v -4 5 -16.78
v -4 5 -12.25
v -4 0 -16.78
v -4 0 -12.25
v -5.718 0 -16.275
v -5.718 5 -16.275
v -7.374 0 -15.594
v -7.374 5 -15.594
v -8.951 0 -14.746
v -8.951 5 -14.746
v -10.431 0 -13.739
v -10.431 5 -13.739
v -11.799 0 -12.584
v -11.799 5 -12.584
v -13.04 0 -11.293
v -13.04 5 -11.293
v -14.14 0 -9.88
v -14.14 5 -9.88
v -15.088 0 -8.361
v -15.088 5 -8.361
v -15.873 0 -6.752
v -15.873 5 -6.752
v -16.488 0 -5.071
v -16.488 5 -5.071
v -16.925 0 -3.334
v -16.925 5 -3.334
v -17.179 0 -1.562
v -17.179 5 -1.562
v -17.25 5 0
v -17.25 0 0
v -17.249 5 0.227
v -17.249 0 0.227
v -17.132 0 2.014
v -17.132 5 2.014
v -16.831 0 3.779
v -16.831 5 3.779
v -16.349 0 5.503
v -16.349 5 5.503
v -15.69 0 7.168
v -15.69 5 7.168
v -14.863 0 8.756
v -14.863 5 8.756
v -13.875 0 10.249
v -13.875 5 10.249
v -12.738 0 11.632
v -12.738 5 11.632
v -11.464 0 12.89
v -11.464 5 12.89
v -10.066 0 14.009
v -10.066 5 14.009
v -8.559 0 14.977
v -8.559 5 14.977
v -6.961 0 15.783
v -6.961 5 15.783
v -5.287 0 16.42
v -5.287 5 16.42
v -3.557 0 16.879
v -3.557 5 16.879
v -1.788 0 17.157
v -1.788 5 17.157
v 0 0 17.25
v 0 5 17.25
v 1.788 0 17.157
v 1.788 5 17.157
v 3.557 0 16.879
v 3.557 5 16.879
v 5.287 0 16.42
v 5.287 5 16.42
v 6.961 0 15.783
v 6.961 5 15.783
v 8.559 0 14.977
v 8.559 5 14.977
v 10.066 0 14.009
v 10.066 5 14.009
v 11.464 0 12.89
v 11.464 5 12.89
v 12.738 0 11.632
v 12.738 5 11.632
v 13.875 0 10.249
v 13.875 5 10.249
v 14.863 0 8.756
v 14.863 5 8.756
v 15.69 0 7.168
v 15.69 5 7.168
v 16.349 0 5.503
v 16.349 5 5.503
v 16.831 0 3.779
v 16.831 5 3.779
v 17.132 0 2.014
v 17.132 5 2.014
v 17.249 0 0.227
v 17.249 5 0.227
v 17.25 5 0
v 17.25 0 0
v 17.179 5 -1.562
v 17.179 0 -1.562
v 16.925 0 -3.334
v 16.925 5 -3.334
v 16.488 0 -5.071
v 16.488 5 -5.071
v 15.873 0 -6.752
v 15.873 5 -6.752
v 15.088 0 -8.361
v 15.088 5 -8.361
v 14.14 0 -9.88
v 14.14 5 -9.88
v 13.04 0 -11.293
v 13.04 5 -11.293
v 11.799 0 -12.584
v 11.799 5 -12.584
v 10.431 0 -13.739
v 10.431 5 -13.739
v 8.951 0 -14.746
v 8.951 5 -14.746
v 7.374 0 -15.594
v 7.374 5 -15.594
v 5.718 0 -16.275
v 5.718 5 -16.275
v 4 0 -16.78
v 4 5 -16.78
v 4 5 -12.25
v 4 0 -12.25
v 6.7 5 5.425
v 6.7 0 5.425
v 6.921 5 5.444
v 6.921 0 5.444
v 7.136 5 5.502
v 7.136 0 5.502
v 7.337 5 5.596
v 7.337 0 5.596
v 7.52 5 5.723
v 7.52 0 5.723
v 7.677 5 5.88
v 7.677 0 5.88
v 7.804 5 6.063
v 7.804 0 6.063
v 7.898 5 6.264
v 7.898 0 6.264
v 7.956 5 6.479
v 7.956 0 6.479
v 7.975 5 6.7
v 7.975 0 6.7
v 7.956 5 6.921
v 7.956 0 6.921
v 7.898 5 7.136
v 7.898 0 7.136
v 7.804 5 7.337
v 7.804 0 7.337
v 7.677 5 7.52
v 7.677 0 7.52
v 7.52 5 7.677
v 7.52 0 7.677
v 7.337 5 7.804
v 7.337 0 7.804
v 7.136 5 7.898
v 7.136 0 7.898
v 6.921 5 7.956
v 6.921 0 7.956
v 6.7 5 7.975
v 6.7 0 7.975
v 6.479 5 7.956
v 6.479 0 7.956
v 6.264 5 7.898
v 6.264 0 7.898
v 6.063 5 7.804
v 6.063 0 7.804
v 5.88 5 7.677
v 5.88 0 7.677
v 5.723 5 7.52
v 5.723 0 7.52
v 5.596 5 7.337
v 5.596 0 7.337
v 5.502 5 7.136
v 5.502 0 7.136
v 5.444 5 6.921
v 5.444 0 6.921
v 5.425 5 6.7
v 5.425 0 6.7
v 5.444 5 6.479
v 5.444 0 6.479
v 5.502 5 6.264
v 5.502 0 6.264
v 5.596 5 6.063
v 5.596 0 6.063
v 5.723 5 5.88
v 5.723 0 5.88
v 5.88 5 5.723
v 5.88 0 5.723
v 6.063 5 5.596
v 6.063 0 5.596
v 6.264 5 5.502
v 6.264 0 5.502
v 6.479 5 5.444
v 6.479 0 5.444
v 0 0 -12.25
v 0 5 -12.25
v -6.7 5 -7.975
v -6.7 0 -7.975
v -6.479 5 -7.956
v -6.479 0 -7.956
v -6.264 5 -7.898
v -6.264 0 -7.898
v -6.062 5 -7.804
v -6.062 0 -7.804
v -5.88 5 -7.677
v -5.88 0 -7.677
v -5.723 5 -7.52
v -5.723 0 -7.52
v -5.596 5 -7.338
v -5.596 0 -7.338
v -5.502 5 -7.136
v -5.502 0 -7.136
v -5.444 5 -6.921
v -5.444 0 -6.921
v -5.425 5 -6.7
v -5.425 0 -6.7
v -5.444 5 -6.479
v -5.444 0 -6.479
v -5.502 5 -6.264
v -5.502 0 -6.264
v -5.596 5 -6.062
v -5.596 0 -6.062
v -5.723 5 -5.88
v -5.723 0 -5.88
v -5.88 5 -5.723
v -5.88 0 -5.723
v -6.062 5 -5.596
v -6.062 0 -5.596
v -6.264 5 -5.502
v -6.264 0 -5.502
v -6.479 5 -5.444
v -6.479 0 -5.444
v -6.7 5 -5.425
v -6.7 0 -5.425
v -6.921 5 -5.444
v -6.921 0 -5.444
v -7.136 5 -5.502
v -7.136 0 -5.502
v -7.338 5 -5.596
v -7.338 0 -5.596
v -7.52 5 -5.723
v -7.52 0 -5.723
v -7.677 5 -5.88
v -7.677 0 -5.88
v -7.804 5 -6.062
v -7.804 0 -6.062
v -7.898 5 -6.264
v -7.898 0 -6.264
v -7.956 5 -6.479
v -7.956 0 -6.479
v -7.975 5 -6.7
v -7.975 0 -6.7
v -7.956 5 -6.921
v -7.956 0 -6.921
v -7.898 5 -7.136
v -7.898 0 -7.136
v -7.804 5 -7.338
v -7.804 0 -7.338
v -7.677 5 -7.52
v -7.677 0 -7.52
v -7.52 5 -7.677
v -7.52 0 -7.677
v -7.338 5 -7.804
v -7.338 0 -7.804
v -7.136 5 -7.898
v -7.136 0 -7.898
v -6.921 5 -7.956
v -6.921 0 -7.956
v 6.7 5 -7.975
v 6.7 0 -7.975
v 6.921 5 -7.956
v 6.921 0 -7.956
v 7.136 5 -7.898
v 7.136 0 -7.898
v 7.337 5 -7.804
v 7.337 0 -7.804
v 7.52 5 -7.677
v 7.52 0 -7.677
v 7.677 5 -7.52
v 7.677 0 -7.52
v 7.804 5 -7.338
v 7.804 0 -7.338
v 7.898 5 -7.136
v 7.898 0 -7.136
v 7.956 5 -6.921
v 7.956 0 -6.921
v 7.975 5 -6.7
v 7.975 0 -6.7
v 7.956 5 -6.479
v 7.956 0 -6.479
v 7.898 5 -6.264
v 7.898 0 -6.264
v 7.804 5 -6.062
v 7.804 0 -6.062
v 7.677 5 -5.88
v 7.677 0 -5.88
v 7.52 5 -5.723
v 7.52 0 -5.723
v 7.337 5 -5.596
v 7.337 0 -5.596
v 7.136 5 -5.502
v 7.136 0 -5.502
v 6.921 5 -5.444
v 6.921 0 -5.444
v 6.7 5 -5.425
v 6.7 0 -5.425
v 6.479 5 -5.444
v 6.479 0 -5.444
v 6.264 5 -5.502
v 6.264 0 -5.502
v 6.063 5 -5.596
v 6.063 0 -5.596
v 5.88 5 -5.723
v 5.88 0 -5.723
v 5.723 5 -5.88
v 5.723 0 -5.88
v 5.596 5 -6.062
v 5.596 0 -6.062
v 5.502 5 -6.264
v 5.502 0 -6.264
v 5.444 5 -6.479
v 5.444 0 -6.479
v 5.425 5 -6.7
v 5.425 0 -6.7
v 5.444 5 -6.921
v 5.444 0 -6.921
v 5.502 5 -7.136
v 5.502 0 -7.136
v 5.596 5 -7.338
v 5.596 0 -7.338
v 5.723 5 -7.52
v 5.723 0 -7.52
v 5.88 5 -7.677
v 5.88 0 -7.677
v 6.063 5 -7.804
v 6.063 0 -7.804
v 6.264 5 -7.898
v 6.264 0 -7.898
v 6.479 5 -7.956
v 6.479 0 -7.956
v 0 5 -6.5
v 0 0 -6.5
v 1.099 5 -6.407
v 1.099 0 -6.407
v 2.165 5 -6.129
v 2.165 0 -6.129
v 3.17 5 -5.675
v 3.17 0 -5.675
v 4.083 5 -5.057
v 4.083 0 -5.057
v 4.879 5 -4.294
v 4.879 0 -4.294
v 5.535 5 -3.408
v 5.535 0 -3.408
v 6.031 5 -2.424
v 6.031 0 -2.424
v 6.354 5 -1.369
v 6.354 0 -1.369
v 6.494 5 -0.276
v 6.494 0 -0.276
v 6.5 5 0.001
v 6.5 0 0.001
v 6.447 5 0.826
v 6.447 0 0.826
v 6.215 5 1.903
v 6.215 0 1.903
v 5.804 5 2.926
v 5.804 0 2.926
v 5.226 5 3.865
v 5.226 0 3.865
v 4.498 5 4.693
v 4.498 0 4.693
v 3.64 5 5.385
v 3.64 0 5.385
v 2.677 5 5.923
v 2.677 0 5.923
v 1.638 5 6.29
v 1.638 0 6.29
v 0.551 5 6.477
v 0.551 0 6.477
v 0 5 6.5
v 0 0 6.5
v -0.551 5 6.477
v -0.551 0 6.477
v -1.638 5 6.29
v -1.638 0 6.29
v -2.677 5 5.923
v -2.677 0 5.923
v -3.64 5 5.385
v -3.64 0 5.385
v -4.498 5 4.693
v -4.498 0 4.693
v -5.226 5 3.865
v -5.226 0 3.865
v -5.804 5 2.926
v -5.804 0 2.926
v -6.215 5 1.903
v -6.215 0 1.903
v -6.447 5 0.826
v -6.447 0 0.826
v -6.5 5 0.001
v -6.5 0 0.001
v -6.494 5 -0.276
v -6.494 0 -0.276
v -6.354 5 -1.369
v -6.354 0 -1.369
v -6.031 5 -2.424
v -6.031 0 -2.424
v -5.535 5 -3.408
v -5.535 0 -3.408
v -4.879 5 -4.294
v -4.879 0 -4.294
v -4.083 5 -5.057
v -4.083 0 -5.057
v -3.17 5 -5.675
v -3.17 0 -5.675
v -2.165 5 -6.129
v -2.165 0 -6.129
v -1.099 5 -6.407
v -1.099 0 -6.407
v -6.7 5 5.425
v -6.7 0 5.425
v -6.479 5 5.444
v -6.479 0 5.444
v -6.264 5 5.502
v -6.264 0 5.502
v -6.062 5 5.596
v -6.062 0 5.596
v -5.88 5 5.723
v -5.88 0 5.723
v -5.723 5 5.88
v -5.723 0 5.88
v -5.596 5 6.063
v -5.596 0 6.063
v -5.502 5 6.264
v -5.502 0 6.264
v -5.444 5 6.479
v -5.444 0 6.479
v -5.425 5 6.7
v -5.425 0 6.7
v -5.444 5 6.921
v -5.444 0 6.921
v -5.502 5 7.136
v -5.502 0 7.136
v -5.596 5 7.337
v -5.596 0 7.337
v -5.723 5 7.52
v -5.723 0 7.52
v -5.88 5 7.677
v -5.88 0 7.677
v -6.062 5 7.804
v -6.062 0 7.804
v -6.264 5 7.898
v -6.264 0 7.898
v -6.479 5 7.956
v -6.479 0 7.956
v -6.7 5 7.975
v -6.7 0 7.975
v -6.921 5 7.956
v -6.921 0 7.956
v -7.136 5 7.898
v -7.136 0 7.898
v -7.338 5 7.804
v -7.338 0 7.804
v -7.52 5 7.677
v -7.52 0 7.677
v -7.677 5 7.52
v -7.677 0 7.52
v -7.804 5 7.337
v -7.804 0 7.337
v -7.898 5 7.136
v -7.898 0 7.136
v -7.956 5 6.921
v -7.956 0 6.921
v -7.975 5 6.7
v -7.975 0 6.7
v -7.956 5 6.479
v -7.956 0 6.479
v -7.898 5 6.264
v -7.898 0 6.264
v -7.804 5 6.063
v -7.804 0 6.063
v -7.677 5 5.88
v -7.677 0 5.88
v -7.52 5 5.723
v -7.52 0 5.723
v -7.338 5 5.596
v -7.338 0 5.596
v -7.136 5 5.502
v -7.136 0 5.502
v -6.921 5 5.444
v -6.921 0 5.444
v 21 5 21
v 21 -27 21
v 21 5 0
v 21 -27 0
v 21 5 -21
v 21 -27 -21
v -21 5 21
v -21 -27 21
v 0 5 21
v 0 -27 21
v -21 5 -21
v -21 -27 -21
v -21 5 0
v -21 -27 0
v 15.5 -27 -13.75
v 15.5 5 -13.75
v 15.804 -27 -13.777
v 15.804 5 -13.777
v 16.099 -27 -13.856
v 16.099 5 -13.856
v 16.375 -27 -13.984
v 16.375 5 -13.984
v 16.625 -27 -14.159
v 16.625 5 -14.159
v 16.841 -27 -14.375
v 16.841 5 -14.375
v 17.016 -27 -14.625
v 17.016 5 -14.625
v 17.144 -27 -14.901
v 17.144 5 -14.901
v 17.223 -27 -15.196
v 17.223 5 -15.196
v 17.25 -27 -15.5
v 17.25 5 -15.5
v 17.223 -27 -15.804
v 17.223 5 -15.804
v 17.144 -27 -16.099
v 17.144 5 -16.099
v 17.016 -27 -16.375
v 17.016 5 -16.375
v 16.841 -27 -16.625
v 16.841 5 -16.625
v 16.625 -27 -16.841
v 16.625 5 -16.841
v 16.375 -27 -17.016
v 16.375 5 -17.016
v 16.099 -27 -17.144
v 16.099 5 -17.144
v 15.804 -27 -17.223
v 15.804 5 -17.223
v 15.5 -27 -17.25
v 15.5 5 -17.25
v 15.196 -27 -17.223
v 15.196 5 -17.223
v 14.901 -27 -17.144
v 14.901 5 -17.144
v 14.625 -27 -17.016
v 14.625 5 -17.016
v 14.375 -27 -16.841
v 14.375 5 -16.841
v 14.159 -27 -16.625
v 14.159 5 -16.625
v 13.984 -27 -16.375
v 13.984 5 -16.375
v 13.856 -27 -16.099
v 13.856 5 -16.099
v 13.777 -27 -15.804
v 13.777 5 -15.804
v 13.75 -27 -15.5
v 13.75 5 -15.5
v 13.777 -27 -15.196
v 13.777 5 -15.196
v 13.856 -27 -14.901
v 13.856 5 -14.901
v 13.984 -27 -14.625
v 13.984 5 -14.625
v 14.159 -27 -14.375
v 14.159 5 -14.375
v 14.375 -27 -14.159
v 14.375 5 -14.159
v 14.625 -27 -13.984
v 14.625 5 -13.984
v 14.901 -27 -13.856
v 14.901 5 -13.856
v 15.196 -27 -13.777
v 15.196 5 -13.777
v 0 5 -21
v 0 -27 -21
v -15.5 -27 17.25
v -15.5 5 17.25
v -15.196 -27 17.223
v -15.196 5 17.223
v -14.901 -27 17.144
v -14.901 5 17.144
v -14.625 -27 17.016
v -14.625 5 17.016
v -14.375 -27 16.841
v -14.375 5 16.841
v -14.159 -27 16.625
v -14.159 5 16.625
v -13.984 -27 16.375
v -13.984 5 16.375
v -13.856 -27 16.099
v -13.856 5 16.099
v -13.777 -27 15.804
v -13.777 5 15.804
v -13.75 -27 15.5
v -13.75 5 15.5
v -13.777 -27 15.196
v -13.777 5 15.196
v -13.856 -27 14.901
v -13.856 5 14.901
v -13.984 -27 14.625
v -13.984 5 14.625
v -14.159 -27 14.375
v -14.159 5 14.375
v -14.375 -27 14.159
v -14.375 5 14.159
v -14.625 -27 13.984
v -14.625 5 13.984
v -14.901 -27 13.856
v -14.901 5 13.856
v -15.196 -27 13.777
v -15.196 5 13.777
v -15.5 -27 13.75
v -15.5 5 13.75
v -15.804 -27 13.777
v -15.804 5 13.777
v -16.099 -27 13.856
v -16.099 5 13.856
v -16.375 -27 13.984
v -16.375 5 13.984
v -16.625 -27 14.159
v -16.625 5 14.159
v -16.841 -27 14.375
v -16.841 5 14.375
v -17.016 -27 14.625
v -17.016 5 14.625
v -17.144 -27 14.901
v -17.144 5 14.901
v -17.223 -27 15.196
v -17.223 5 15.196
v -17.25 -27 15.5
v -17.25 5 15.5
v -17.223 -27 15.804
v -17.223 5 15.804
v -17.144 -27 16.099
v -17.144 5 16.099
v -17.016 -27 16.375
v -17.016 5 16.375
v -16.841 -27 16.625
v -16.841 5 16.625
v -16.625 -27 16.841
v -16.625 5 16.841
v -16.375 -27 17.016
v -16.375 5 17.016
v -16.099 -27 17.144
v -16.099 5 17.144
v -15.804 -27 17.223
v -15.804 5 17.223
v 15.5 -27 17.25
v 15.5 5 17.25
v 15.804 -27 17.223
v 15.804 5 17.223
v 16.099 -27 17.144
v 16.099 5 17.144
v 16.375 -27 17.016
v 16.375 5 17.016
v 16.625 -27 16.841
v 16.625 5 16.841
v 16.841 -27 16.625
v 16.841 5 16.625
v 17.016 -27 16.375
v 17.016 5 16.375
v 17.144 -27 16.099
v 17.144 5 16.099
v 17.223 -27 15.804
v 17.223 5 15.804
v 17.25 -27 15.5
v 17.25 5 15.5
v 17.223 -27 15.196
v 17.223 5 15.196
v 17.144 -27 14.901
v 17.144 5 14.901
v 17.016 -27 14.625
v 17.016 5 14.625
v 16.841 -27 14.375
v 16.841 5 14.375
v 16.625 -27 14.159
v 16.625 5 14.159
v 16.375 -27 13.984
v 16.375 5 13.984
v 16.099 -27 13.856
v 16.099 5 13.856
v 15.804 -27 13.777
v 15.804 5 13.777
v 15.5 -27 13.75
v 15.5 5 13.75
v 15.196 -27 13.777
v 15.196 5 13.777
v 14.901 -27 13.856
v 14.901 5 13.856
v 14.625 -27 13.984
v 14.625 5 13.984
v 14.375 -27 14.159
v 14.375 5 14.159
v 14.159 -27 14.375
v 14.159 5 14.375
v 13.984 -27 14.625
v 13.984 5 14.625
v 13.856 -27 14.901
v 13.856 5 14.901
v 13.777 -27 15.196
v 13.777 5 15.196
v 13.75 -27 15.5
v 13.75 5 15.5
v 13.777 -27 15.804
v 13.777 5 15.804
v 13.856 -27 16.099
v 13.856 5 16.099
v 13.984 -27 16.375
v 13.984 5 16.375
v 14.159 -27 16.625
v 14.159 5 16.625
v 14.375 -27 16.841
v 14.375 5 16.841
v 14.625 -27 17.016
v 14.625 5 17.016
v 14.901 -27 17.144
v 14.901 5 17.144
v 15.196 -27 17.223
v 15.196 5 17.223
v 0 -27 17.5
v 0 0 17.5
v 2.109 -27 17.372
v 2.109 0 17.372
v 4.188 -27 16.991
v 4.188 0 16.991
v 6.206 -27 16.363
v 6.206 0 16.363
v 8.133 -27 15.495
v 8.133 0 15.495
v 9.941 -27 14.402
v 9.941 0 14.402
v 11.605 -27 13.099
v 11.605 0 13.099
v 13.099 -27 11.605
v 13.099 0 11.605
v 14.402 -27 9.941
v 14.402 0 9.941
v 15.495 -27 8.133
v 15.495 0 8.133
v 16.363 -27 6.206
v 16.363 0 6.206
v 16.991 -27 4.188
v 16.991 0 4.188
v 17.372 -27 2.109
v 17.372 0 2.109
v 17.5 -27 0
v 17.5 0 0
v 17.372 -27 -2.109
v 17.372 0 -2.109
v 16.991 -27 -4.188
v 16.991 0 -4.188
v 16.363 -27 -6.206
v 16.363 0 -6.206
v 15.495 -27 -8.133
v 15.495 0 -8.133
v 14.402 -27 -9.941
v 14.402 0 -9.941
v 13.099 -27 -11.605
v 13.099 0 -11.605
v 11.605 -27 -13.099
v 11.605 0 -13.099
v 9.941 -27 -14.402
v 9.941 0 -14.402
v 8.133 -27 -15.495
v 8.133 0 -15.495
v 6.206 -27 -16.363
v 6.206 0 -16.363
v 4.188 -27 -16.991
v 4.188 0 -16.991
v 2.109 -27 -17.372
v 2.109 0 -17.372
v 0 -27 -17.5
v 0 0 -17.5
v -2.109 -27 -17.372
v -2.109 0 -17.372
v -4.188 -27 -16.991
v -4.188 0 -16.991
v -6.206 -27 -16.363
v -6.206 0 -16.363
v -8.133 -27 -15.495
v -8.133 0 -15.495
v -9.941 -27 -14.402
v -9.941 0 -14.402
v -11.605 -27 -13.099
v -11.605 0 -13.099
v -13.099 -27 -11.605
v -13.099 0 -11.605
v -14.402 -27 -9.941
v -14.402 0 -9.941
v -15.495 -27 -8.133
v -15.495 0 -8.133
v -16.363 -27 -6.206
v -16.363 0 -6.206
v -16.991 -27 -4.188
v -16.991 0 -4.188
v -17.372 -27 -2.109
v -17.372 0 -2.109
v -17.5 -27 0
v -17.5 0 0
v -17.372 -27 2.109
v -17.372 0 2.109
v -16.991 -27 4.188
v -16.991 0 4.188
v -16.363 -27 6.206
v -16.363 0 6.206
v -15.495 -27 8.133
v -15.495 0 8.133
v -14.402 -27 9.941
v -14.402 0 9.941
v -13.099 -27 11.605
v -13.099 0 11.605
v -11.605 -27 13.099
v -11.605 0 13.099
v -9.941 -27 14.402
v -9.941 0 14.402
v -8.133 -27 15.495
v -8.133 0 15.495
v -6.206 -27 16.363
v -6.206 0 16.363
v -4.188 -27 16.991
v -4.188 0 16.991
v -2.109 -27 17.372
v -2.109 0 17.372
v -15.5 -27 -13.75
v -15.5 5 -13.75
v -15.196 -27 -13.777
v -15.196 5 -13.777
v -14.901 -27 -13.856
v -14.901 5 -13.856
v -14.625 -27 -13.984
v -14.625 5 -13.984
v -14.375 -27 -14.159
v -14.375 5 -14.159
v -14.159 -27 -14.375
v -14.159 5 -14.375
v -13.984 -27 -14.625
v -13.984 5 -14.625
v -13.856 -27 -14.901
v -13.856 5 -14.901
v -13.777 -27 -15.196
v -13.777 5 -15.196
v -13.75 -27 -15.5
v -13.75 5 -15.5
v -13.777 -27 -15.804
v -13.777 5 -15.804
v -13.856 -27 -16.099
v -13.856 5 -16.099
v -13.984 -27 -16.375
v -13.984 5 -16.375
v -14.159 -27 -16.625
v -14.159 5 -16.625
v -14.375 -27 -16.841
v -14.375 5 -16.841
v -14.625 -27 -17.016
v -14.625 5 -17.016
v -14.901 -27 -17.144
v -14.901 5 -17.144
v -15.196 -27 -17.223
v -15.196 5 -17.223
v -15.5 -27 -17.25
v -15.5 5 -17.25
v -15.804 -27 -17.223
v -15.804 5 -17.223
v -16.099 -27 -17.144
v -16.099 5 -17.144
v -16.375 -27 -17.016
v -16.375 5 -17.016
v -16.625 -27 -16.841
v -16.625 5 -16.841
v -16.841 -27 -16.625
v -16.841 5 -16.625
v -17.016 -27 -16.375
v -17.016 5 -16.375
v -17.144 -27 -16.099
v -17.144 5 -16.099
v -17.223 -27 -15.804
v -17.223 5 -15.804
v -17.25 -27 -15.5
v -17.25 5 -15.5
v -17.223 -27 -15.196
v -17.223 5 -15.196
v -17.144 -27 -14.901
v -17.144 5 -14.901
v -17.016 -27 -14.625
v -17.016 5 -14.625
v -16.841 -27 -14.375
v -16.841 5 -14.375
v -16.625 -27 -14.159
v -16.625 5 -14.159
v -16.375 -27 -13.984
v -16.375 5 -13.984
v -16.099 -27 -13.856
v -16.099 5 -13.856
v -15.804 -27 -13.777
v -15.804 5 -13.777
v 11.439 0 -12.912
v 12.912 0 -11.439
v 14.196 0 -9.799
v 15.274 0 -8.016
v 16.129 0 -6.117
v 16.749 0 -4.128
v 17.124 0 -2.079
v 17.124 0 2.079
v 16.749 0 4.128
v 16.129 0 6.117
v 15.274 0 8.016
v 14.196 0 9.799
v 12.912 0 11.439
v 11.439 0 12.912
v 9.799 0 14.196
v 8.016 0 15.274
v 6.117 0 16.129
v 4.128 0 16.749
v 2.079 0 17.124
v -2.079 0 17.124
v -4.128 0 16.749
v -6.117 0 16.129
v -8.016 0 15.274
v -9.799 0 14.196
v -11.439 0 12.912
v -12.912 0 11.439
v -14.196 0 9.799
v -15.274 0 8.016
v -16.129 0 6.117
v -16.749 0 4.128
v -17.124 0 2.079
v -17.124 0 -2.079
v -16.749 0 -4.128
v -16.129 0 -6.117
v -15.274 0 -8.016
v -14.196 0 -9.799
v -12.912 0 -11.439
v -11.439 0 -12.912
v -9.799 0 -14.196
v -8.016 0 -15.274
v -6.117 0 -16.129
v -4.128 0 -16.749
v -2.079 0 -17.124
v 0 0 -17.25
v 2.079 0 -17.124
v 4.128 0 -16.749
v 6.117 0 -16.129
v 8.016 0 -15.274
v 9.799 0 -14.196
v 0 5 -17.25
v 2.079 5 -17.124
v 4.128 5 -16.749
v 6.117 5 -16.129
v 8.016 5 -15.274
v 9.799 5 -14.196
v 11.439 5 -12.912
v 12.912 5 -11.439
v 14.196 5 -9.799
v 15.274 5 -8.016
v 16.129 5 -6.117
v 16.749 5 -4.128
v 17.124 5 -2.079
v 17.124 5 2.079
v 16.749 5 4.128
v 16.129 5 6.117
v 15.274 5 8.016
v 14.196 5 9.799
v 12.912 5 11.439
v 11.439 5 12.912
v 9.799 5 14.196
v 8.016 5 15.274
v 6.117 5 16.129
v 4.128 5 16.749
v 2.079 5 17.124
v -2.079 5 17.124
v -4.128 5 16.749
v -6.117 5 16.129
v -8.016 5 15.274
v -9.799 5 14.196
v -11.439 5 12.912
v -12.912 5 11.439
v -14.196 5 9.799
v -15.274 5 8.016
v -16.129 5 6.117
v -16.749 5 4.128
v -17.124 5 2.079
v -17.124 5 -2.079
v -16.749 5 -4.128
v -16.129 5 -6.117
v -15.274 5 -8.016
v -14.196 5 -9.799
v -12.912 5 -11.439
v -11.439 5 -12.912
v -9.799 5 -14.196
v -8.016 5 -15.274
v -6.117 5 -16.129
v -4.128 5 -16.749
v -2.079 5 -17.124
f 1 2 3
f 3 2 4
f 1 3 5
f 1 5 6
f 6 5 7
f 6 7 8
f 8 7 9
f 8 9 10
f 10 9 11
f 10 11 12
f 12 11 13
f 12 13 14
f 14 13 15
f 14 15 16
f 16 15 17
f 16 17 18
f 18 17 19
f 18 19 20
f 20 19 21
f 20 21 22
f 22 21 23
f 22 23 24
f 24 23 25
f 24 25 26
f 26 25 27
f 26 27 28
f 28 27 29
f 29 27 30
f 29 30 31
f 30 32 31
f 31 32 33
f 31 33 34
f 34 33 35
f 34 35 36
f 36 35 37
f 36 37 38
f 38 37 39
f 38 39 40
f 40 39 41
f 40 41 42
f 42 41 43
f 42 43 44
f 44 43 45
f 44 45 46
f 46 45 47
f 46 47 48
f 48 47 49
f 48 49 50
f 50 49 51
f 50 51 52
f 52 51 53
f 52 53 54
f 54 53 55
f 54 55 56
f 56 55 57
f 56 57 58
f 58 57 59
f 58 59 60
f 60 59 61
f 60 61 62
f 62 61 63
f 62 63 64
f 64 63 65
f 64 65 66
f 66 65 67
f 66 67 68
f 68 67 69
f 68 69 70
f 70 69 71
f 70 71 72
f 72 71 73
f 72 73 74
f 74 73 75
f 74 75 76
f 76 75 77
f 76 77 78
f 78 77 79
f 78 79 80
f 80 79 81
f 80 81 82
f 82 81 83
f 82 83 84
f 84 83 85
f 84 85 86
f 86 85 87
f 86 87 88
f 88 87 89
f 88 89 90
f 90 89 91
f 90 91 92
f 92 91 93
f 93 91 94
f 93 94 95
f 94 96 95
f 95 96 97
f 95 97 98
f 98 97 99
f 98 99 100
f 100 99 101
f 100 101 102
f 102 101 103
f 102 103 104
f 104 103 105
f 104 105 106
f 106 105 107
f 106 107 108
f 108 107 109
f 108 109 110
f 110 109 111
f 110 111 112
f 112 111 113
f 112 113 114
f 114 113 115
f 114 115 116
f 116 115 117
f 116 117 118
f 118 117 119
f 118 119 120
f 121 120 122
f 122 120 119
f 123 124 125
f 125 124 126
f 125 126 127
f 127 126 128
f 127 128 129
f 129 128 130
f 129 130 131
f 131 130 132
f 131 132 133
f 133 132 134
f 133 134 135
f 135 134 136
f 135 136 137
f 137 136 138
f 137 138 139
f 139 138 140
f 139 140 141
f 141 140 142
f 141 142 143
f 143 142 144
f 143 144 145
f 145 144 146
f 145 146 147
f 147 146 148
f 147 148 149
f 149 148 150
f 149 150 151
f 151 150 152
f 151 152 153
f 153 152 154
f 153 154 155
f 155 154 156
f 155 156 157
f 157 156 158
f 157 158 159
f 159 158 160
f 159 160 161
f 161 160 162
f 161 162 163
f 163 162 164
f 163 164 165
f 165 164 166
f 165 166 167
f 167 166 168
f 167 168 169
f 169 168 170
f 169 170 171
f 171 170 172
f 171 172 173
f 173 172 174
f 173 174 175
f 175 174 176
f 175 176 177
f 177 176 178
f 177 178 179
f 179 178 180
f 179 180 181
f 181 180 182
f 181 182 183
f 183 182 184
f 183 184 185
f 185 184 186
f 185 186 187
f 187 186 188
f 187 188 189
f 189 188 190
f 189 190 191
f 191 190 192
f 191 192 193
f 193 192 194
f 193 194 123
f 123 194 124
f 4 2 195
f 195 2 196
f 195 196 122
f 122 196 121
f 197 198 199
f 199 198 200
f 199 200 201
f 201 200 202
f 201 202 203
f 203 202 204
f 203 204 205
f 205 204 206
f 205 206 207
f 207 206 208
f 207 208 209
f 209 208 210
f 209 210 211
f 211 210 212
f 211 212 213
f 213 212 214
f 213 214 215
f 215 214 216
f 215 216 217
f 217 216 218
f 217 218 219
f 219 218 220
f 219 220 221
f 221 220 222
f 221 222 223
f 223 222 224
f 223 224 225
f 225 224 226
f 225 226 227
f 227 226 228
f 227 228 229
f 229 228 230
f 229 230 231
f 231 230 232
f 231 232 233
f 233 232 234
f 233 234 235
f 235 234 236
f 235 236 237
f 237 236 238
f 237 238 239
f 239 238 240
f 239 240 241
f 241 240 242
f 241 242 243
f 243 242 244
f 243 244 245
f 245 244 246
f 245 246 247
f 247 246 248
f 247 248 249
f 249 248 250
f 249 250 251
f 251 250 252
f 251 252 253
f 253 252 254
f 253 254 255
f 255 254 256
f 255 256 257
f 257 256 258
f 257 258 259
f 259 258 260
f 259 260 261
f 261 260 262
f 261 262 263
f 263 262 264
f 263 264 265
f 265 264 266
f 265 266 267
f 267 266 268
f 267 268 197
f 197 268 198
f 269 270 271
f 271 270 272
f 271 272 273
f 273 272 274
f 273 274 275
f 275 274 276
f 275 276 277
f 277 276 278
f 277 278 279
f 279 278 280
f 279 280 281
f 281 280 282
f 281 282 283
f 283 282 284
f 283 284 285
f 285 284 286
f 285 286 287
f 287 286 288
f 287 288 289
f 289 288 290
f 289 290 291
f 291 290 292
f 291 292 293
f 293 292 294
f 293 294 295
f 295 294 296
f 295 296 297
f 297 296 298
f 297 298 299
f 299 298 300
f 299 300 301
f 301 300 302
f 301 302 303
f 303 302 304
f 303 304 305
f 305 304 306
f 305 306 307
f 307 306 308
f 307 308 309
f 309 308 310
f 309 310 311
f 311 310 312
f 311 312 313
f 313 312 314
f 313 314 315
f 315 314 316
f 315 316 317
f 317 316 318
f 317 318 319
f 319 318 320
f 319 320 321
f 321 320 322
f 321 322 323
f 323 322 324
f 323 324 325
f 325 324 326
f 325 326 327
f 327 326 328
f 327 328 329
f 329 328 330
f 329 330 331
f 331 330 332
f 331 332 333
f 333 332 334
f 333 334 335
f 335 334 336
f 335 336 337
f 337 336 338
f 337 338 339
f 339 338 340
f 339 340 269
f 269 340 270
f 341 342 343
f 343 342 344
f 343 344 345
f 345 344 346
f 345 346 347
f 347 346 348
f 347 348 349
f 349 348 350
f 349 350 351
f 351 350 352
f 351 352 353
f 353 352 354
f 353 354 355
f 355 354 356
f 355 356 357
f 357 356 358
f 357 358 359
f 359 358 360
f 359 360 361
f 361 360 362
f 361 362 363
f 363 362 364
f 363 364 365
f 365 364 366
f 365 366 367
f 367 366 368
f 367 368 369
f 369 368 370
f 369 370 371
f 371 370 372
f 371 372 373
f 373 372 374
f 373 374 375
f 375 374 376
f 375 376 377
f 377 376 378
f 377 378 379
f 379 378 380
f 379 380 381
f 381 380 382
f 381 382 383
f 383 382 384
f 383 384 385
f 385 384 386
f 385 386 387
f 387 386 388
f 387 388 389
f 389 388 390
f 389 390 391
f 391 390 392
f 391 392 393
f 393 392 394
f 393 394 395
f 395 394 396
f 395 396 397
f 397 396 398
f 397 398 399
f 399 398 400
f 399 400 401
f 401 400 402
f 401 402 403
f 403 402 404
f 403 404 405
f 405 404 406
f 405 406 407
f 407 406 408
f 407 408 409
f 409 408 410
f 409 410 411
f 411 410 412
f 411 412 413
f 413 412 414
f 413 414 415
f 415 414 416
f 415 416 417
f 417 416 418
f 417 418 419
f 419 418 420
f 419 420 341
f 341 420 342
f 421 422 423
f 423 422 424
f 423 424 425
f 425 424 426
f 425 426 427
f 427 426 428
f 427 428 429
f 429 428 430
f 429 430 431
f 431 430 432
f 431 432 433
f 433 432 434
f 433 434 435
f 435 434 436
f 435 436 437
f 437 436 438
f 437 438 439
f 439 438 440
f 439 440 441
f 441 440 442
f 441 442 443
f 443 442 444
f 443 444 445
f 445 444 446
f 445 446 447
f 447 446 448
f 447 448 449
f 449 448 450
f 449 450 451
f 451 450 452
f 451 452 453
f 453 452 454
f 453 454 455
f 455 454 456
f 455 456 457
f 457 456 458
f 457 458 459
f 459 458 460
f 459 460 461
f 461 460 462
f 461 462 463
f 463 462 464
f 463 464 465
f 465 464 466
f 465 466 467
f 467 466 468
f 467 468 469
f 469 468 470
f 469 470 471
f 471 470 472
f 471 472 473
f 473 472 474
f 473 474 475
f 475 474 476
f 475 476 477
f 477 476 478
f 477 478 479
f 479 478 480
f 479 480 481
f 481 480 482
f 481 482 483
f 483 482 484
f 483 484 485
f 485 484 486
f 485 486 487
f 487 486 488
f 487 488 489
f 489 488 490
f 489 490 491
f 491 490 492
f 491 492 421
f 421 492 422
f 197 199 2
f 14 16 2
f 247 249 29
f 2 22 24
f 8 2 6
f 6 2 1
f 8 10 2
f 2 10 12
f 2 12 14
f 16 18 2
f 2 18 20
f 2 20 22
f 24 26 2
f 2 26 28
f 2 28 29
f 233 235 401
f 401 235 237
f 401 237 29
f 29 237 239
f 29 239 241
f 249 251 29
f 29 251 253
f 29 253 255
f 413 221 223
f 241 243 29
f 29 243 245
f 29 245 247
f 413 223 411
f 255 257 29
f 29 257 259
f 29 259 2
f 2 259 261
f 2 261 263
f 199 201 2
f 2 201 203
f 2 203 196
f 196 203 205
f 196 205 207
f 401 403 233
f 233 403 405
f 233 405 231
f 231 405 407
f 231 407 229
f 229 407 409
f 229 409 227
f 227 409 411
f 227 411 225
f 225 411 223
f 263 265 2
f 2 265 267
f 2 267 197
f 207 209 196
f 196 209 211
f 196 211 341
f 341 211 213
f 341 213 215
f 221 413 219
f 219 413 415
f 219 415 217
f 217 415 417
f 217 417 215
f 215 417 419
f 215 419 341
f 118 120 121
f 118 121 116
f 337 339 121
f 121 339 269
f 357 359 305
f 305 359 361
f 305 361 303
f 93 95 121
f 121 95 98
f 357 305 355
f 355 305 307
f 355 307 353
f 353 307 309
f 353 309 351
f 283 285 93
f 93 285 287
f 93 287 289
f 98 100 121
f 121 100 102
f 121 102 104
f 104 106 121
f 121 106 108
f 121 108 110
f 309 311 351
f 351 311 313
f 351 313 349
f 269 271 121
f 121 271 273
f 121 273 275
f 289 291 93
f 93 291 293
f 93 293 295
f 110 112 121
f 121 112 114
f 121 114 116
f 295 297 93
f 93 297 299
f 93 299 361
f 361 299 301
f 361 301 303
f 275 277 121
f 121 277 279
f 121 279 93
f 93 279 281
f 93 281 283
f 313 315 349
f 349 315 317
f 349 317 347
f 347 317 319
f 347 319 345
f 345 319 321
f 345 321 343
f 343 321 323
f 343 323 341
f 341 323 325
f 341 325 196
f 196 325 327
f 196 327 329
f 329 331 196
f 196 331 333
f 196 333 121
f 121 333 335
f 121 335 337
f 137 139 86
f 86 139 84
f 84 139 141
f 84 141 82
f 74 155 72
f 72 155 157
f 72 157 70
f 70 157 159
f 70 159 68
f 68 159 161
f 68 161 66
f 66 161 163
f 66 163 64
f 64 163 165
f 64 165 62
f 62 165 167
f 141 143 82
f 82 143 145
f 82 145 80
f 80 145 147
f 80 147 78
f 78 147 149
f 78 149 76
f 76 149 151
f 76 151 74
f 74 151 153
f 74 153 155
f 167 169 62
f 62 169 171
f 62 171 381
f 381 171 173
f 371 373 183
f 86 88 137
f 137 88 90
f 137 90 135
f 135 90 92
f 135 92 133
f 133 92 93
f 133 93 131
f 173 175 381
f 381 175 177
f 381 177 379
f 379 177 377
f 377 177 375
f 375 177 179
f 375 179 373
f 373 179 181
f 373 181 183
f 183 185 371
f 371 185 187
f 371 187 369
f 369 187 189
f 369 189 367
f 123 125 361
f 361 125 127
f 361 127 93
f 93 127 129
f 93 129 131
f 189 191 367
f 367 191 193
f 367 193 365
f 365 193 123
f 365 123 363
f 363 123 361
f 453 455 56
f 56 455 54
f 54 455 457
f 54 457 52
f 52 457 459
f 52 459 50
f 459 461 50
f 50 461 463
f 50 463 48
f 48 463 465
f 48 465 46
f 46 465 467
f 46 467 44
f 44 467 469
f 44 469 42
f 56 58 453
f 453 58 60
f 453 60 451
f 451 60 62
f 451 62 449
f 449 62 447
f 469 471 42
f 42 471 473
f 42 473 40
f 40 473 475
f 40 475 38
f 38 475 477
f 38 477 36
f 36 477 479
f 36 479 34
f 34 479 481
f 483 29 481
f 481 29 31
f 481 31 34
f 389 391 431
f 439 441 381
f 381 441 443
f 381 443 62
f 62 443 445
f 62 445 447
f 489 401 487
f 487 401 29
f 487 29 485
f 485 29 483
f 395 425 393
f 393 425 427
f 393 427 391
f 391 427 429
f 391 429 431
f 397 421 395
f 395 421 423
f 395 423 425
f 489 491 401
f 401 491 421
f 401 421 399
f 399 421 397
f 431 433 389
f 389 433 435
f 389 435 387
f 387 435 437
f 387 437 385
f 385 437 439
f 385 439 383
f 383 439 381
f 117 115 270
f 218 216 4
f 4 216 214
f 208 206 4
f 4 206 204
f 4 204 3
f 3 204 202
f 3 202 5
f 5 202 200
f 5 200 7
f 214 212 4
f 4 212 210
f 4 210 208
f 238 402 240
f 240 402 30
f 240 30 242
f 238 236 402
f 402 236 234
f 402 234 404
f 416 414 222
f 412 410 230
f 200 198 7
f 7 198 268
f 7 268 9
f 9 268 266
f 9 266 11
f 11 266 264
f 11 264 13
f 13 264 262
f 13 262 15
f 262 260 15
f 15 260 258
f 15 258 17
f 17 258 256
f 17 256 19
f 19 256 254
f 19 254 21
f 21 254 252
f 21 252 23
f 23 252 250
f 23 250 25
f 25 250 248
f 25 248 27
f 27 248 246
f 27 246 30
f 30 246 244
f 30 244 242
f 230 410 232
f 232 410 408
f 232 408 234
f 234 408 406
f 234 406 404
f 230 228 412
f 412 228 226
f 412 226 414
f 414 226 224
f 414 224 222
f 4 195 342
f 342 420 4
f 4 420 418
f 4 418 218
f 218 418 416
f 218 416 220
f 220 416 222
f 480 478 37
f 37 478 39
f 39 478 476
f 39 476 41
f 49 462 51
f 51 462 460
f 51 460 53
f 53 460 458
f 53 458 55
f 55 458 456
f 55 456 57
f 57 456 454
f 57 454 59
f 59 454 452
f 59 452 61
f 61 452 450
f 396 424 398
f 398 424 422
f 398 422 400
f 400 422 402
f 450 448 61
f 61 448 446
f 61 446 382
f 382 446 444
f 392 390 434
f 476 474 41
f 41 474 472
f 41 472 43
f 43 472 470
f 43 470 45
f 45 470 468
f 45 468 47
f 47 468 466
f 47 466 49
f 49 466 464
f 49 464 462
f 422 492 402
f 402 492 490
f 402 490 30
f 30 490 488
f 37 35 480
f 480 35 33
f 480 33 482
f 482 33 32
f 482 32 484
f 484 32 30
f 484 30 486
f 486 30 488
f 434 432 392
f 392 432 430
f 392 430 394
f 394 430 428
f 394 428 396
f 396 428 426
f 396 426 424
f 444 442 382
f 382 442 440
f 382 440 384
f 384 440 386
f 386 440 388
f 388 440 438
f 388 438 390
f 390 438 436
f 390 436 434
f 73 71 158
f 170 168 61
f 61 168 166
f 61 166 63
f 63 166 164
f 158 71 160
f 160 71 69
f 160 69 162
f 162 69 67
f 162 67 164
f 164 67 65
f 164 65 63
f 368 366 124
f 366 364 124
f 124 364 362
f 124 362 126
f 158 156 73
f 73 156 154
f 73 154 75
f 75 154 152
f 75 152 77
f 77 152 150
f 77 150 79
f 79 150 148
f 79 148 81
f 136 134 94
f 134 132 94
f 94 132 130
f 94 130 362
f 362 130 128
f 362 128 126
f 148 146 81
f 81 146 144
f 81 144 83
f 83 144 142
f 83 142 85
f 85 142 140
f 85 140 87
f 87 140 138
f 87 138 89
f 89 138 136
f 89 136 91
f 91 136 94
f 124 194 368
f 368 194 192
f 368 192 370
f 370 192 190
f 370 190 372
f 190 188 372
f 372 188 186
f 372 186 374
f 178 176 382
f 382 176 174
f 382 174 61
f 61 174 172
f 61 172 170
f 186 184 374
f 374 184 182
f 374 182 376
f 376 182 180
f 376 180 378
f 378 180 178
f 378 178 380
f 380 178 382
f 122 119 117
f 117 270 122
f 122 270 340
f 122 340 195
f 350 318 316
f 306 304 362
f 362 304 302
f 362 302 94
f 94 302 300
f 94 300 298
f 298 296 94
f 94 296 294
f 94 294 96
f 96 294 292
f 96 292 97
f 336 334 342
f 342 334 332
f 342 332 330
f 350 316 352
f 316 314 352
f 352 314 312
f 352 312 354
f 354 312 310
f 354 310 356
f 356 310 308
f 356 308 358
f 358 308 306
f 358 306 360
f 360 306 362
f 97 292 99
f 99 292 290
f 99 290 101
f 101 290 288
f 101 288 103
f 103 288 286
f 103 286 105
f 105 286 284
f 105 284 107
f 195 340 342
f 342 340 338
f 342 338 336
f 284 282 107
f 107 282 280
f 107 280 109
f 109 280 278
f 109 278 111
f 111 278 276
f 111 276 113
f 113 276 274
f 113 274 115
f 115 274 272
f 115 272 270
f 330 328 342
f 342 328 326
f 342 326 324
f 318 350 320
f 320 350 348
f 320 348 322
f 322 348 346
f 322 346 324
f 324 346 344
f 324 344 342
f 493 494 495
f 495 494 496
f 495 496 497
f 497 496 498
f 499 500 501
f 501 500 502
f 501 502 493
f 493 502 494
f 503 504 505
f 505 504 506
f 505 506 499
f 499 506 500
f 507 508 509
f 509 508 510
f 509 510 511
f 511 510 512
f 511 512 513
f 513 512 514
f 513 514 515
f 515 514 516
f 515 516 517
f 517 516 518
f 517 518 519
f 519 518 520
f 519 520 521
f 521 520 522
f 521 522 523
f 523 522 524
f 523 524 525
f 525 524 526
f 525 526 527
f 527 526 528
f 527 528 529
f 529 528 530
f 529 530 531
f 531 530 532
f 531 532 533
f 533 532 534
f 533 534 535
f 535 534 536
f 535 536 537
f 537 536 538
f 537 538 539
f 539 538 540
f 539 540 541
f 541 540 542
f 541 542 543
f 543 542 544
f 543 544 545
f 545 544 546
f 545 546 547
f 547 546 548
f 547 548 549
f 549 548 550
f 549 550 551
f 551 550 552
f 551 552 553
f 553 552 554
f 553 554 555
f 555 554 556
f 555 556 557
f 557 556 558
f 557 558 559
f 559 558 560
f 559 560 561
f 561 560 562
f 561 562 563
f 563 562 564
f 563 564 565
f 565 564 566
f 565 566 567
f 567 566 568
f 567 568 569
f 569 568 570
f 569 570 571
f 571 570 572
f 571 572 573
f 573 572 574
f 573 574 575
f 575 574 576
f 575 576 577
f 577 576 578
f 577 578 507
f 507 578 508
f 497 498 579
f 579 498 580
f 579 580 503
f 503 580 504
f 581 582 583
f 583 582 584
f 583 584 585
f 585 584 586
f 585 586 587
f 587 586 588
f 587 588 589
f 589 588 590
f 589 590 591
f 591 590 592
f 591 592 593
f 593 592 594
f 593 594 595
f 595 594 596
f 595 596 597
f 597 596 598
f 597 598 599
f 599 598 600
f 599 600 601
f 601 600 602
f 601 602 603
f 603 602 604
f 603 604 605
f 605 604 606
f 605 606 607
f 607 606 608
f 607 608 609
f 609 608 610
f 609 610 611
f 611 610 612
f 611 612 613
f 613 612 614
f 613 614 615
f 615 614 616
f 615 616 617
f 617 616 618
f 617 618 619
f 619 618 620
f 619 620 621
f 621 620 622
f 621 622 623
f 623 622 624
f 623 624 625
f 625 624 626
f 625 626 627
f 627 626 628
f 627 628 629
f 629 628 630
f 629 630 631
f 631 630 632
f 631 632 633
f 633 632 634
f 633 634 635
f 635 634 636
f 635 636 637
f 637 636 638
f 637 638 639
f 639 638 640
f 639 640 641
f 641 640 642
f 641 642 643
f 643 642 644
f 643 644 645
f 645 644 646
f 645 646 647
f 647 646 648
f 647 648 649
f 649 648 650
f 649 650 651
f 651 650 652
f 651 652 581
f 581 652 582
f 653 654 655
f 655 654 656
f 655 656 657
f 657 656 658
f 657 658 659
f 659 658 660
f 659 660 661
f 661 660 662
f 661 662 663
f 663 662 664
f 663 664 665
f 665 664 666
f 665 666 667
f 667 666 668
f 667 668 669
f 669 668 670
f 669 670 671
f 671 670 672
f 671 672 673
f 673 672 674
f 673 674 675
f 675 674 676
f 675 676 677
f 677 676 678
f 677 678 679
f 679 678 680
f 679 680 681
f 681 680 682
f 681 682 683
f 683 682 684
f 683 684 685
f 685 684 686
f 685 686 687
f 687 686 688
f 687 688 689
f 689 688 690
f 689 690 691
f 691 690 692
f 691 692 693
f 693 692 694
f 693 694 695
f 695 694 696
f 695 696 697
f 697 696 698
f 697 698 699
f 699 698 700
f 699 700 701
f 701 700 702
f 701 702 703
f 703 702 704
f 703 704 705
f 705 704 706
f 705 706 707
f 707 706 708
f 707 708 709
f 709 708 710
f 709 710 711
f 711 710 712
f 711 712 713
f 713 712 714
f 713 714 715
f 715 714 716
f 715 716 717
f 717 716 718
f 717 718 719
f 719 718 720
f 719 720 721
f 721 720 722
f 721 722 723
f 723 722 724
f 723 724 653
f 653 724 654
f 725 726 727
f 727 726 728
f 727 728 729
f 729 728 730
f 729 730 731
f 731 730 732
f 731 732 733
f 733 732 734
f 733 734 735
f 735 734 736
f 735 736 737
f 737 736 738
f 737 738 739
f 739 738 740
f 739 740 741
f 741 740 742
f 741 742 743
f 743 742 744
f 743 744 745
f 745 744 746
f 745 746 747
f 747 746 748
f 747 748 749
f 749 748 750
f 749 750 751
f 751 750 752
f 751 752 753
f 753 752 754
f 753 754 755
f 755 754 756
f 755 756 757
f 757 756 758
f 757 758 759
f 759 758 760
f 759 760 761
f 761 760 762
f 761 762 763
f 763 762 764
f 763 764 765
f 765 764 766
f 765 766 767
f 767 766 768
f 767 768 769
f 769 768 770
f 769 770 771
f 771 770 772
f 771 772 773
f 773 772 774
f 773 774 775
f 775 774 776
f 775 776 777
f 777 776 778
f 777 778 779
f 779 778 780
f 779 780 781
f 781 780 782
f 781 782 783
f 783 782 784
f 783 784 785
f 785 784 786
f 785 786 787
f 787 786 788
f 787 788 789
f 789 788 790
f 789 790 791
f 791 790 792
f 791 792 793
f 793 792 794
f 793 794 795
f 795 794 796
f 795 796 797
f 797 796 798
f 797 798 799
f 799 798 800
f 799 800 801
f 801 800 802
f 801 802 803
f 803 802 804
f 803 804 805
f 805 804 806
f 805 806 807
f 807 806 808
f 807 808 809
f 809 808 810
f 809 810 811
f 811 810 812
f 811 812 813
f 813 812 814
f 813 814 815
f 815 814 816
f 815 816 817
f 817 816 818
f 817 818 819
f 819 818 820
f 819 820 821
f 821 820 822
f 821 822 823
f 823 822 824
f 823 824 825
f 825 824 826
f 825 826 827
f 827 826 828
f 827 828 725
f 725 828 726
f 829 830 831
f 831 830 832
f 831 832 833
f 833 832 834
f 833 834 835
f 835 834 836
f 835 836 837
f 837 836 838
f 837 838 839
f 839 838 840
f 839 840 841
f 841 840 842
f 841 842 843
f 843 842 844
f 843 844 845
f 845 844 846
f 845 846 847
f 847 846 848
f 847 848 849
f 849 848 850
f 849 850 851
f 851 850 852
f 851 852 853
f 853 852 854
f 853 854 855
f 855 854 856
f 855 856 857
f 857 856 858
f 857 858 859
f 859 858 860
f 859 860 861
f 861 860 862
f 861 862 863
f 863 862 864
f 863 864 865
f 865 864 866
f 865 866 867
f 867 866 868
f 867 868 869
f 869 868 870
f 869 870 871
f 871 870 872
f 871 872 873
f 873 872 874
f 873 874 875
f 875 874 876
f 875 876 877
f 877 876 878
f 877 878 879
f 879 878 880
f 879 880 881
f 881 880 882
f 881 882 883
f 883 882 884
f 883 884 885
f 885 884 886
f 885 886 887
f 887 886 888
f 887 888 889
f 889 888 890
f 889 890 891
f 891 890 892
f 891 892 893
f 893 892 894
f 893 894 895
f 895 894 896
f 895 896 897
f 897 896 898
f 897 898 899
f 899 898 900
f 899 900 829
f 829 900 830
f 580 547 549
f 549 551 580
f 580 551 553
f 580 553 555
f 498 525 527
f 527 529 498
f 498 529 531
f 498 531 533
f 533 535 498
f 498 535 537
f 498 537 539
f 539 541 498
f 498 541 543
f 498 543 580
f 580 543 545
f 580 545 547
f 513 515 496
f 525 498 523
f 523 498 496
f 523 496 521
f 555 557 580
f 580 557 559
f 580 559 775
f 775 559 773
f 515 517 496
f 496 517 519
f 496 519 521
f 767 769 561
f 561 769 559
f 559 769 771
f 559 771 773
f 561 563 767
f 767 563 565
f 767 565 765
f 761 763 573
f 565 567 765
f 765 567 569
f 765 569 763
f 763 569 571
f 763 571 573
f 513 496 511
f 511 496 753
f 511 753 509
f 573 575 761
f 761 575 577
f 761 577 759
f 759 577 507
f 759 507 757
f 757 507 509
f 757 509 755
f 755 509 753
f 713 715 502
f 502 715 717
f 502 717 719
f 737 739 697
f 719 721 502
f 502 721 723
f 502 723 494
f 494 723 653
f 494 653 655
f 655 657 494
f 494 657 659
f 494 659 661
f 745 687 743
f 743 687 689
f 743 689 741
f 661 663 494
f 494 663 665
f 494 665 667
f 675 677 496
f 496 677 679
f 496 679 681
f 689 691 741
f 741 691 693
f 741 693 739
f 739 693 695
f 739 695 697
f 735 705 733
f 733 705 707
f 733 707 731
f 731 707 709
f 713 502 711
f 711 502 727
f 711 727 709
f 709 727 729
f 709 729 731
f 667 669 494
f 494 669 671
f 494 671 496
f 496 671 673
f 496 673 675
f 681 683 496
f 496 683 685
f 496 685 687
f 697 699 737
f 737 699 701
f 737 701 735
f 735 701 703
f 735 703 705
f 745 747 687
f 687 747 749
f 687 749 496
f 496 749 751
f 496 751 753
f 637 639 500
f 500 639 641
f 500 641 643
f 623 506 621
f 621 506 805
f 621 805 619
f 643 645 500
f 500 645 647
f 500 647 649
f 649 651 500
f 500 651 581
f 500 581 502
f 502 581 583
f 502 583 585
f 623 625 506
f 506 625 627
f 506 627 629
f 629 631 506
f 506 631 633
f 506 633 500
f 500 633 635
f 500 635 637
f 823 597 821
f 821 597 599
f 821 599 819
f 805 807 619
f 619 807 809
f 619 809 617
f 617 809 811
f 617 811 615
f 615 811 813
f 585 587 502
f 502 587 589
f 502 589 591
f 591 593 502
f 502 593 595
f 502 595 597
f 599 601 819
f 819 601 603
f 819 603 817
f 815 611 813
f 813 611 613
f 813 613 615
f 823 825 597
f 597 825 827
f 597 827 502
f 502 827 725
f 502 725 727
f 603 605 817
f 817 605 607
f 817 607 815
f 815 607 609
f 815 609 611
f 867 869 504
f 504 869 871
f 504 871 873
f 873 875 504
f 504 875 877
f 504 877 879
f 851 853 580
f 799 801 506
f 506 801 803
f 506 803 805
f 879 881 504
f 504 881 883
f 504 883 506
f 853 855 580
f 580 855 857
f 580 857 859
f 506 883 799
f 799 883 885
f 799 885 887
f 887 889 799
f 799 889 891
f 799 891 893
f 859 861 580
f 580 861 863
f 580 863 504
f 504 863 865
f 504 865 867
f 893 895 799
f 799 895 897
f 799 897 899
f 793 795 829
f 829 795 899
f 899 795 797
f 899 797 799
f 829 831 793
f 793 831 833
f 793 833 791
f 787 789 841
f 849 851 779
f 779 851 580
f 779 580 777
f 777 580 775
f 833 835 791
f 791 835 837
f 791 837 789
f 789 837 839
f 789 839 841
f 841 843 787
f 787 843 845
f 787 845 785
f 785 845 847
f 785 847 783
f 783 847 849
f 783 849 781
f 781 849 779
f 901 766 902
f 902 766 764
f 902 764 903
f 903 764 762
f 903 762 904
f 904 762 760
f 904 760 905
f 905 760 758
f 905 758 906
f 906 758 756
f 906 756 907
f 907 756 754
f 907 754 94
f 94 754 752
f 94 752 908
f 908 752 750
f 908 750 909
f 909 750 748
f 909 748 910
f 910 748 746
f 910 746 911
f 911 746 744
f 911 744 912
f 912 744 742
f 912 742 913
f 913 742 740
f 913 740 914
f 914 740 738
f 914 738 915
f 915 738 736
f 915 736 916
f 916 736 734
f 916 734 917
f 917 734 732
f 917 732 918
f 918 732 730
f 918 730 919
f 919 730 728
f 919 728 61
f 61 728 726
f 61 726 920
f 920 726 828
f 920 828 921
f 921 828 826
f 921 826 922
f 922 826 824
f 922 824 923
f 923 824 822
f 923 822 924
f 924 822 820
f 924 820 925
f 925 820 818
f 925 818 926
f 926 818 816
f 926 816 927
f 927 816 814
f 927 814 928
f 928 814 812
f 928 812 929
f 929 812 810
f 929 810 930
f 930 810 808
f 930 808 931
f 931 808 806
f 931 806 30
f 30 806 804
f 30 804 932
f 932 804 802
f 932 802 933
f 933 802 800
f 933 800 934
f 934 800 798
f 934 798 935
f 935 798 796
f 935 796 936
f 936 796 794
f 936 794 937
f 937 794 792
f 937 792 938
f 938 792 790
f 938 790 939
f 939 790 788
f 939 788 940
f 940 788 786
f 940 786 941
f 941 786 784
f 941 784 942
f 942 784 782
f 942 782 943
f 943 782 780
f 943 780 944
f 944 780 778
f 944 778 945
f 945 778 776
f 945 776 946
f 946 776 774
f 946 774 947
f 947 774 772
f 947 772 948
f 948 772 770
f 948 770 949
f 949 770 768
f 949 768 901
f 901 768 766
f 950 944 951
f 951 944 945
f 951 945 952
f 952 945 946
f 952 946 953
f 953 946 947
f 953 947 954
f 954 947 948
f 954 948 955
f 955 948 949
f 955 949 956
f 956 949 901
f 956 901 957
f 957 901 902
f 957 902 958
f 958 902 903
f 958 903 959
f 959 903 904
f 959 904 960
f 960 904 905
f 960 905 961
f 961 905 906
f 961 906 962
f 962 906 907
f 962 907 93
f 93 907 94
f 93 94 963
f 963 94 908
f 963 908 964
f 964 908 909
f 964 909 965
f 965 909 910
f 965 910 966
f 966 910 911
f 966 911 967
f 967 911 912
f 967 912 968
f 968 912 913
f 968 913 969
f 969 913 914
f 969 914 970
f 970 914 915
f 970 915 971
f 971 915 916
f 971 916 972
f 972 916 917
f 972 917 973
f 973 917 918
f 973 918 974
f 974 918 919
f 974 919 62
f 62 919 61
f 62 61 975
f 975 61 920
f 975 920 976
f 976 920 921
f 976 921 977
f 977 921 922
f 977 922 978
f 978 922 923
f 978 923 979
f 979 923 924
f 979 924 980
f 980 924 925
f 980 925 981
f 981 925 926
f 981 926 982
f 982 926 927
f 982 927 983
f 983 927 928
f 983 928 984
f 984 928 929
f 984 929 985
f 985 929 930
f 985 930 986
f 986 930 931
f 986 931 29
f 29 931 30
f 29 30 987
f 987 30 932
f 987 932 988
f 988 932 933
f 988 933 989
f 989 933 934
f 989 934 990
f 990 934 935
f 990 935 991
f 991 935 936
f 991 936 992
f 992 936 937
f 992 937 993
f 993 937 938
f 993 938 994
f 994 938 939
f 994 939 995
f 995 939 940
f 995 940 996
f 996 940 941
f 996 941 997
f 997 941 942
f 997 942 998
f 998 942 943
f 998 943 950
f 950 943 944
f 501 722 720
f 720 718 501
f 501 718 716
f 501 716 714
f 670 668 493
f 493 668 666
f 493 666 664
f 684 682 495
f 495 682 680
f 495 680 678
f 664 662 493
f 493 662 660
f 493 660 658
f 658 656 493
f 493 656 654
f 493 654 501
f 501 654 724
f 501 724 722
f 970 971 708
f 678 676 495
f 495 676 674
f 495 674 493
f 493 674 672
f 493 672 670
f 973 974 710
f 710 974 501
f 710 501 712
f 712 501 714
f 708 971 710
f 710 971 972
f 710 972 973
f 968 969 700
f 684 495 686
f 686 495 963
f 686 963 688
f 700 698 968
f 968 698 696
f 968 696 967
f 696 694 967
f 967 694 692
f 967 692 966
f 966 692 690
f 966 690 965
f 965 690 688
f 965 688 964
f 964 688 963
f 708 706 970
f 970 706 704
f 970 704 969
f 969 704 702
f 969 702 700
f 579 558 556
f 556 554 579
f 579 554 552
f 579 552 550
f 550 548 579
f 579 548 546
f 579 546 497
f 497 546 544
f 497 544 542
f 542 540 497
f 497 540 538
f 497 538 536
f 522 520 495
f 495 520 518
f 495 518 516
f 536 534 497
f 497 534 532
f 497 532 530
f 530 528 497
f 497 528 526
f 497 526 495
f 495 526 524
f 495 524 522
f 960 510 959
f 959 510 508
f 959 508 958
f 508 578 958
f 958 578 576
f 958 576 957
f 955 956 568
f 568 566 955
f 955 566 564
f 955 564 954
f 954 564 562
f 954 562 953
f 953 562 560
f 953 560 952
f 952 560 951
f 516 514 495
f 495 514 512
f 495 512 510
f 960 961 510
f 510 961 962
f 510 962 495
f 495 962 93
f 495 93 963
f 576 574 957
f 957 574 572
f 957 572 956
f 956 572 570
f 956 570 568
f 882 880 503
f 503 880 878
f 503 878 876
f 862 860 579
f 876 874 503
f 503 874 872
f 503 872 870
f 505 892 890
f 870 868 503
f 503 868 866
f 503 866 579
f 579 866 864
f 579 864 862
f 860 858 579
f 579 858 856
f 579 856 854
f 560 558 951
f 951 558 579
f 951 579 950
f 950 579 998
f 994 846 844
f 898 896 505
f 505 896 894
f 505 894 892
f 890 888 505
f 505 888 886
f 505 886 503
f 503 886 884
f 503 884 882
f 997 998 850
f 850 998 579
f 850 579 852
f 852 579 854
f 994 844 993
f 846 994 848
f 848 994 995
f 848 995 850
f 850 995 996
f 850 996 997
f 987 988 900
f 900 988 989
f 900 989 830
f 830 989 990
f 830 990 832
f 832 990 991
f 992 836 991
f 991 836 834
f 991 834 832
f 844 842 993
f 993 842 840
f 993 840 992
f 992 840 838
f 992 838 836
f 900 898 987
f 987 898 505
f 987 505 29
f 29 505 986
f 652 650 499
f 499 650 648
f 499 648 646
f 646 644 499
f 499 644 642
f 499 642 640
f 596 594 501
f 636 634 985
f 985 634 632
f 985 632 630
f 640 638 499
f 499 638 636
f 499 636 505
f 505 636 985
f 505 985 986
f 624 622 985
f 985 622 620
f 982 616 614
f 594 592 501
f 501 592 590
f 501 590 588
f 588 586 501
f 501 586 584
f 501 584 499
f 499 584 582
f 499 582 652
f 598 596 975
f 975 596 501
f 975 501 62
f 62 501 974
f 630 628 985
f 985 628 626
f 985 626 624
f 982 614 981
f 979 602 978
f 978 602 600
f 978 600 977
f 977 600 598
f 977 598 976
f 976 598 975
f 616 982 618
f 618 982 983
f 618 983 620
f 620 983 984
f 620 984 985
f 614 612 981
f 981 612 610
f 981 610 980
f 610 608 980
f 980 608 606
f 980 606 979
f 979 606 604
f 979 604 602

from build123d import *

# Parameters (mm, degrees)
SKETCH_1_R      = 1.275
SKETCH_1_R_2    = 6.5
EXTRUDE_1_DEPTH = 5
SKETCH_2_W      = 42
SKETCH_2_H      = 42
SKETCH_2_R      = 1.75
SKETCH_2_R_2    = 17.5
EXTRUDE_2_DEPTH = 27
SKETCH_3_W      = 42
SKETCH_3_H      = 42
SKETCH_3_R      = 1.75
SKETCH_3_R_2    = 17.5
SKETCH_3_R_3    = 17.25
EXTRUDE_3_DEPTH = 5


with BuildPart() as part:
    # 草图1 → 凸台-拉伸1 (new body)
    with BuildSketch(Plane(origin=(0, 0, 0), x_dir=(1, 0, 0), z_dir=(0, 1, 0))):
        with BuildLine():
            Line((-4, 12.25), (-4, 16.779824195))
            ThreePointArc((-4, 16.779824195), (-10.690240877, -13.538140567), (17.25, 0))
            ThreePointArc((17.25, 0), (13.538140567, 10.690240877), (4, 16.779824195))
            Line((4, 16.779824195), (4, 12.25))
            Line((4, 12.25), (-4, 12.25))
        make_face()
        with Locations(Location((-6.7, -6.7, 0), (0, 0, 270))):
            Circle(SKETCH_1_R, mode=Mode.SUBTRACT)
        with Locations(Location((6.7, -6.7, 0), (0, 0, 270))):
            Circle(SKETCH_1_R, mode=Mode.SUBTRACT)
        with Locations(Location((0, 0, 0), (0, 0, 270))):
            Circle(SKETCH_1_R_2, mode=Mode.SUBTRACT)
        with Locations(Location((-6.7, 6.7, 0), (0, 0, 270))):
            Circle(SKETCH_1_R, mode=Mode.SUBTRACT)
        with Locations(Location((6.7, 6.7, 0), (0, 0, 270))):
            Circle(SKETCH_1_R, mode=Mode.SUBTRACT)
    extrude(amount=EXTRUDE_1_DEPTH)


with BuildPart() as body_2:
    # 草图2 → 凸台-拉伸2 (new body)
    with BuildSketch(Plane.XZ):
        Rectangle(SKETCH_2_W, SKETCH_2_H)
        with Locations(Location((-15.5, -15.5, 0), (0, 0, 270))):
            Circle(SKETCH_2_R, mode=Mode.SUBTRACT)
        with Locations(Location((15.5, -15.5, 0), (0, 0, 270))):
            Circle(SKETCH_2_R, mode=Mode.SUBTRACT)
        with Locations(Location((-15.5, 15.5, 0), (0, 0, 270))):
            Circle(SKETCH_2_R, mode=Mode.SUBTRACT)
        with Locations(Location((0, 0, 0), (0, 0, 270))):
            Circle(SKETCH_2_R_2, mode=Mode.SUBTRACT)
        with Locations(Location((15.5, 15.5, 0), (0, 0, 270))):
            Circle(SKETCH_2_R, mode=Mode.SUBTRACT)
    extrude(amount=EXTRUDE_2_DEPTH)

    # 草图3 → 凸台-拉伸3 (add)
    # profile 1 of 2: a face of its own
    with BuildSketch(Plane(origin=(0, 0, 0), x_dir=(1, 0, 0), z_dir=(0, 1, 0))):
        Rectangle(SKETCH_3_W, SKETCH_3_H)
        with Locations(Location((15.5, -15.5, 0), (0, 0, 270))):
            Circle(SKETCH_3_R, mode=Mode.SUBTRACT)
        with Locations(Location((-15.5, 15.5, 0), (0, 0, 270))):
            Circle(SKETCH_3_R, mode=Mode.SUBTRACT)
        with Locations(Location((15.5, 15.5, 0), (0, 0, 270))):
            Circle(SKETCH_3_R, mode=Mode.SUBTRACT)
        with Locations(Location((-15.5, -15.5, 0), (0, 0, 270))):
            Circle(SKETCH_3_R, mode=Mode.SUBTRACT)
        with Locations(Location((0, 0, 0), (0, 0, 90))):
            Circle(SKETCH_3_R_2, mode=Mode.SUBTRACT)
    # profile 2 of 2: a face of its own
    with BuildSketch(Plane(origin=(0, 0, 0), x_dir=(1, 0, 0), z_dir=(0, 1, 0))):
        with Locations(Location((0, 0, 0), (0, 0, 90))):
            Circle(SKETCH_3_R_2)
        with Locations(Location((0, 0, 0), (0, 0, 270))):
            Circle(SKETCH_3_R_3, mode=Mode.SUBTRACT)
    extrude(amount=EXTRUDE_3_DEPTH)


solid = Compound([part.part, body_2.part])
